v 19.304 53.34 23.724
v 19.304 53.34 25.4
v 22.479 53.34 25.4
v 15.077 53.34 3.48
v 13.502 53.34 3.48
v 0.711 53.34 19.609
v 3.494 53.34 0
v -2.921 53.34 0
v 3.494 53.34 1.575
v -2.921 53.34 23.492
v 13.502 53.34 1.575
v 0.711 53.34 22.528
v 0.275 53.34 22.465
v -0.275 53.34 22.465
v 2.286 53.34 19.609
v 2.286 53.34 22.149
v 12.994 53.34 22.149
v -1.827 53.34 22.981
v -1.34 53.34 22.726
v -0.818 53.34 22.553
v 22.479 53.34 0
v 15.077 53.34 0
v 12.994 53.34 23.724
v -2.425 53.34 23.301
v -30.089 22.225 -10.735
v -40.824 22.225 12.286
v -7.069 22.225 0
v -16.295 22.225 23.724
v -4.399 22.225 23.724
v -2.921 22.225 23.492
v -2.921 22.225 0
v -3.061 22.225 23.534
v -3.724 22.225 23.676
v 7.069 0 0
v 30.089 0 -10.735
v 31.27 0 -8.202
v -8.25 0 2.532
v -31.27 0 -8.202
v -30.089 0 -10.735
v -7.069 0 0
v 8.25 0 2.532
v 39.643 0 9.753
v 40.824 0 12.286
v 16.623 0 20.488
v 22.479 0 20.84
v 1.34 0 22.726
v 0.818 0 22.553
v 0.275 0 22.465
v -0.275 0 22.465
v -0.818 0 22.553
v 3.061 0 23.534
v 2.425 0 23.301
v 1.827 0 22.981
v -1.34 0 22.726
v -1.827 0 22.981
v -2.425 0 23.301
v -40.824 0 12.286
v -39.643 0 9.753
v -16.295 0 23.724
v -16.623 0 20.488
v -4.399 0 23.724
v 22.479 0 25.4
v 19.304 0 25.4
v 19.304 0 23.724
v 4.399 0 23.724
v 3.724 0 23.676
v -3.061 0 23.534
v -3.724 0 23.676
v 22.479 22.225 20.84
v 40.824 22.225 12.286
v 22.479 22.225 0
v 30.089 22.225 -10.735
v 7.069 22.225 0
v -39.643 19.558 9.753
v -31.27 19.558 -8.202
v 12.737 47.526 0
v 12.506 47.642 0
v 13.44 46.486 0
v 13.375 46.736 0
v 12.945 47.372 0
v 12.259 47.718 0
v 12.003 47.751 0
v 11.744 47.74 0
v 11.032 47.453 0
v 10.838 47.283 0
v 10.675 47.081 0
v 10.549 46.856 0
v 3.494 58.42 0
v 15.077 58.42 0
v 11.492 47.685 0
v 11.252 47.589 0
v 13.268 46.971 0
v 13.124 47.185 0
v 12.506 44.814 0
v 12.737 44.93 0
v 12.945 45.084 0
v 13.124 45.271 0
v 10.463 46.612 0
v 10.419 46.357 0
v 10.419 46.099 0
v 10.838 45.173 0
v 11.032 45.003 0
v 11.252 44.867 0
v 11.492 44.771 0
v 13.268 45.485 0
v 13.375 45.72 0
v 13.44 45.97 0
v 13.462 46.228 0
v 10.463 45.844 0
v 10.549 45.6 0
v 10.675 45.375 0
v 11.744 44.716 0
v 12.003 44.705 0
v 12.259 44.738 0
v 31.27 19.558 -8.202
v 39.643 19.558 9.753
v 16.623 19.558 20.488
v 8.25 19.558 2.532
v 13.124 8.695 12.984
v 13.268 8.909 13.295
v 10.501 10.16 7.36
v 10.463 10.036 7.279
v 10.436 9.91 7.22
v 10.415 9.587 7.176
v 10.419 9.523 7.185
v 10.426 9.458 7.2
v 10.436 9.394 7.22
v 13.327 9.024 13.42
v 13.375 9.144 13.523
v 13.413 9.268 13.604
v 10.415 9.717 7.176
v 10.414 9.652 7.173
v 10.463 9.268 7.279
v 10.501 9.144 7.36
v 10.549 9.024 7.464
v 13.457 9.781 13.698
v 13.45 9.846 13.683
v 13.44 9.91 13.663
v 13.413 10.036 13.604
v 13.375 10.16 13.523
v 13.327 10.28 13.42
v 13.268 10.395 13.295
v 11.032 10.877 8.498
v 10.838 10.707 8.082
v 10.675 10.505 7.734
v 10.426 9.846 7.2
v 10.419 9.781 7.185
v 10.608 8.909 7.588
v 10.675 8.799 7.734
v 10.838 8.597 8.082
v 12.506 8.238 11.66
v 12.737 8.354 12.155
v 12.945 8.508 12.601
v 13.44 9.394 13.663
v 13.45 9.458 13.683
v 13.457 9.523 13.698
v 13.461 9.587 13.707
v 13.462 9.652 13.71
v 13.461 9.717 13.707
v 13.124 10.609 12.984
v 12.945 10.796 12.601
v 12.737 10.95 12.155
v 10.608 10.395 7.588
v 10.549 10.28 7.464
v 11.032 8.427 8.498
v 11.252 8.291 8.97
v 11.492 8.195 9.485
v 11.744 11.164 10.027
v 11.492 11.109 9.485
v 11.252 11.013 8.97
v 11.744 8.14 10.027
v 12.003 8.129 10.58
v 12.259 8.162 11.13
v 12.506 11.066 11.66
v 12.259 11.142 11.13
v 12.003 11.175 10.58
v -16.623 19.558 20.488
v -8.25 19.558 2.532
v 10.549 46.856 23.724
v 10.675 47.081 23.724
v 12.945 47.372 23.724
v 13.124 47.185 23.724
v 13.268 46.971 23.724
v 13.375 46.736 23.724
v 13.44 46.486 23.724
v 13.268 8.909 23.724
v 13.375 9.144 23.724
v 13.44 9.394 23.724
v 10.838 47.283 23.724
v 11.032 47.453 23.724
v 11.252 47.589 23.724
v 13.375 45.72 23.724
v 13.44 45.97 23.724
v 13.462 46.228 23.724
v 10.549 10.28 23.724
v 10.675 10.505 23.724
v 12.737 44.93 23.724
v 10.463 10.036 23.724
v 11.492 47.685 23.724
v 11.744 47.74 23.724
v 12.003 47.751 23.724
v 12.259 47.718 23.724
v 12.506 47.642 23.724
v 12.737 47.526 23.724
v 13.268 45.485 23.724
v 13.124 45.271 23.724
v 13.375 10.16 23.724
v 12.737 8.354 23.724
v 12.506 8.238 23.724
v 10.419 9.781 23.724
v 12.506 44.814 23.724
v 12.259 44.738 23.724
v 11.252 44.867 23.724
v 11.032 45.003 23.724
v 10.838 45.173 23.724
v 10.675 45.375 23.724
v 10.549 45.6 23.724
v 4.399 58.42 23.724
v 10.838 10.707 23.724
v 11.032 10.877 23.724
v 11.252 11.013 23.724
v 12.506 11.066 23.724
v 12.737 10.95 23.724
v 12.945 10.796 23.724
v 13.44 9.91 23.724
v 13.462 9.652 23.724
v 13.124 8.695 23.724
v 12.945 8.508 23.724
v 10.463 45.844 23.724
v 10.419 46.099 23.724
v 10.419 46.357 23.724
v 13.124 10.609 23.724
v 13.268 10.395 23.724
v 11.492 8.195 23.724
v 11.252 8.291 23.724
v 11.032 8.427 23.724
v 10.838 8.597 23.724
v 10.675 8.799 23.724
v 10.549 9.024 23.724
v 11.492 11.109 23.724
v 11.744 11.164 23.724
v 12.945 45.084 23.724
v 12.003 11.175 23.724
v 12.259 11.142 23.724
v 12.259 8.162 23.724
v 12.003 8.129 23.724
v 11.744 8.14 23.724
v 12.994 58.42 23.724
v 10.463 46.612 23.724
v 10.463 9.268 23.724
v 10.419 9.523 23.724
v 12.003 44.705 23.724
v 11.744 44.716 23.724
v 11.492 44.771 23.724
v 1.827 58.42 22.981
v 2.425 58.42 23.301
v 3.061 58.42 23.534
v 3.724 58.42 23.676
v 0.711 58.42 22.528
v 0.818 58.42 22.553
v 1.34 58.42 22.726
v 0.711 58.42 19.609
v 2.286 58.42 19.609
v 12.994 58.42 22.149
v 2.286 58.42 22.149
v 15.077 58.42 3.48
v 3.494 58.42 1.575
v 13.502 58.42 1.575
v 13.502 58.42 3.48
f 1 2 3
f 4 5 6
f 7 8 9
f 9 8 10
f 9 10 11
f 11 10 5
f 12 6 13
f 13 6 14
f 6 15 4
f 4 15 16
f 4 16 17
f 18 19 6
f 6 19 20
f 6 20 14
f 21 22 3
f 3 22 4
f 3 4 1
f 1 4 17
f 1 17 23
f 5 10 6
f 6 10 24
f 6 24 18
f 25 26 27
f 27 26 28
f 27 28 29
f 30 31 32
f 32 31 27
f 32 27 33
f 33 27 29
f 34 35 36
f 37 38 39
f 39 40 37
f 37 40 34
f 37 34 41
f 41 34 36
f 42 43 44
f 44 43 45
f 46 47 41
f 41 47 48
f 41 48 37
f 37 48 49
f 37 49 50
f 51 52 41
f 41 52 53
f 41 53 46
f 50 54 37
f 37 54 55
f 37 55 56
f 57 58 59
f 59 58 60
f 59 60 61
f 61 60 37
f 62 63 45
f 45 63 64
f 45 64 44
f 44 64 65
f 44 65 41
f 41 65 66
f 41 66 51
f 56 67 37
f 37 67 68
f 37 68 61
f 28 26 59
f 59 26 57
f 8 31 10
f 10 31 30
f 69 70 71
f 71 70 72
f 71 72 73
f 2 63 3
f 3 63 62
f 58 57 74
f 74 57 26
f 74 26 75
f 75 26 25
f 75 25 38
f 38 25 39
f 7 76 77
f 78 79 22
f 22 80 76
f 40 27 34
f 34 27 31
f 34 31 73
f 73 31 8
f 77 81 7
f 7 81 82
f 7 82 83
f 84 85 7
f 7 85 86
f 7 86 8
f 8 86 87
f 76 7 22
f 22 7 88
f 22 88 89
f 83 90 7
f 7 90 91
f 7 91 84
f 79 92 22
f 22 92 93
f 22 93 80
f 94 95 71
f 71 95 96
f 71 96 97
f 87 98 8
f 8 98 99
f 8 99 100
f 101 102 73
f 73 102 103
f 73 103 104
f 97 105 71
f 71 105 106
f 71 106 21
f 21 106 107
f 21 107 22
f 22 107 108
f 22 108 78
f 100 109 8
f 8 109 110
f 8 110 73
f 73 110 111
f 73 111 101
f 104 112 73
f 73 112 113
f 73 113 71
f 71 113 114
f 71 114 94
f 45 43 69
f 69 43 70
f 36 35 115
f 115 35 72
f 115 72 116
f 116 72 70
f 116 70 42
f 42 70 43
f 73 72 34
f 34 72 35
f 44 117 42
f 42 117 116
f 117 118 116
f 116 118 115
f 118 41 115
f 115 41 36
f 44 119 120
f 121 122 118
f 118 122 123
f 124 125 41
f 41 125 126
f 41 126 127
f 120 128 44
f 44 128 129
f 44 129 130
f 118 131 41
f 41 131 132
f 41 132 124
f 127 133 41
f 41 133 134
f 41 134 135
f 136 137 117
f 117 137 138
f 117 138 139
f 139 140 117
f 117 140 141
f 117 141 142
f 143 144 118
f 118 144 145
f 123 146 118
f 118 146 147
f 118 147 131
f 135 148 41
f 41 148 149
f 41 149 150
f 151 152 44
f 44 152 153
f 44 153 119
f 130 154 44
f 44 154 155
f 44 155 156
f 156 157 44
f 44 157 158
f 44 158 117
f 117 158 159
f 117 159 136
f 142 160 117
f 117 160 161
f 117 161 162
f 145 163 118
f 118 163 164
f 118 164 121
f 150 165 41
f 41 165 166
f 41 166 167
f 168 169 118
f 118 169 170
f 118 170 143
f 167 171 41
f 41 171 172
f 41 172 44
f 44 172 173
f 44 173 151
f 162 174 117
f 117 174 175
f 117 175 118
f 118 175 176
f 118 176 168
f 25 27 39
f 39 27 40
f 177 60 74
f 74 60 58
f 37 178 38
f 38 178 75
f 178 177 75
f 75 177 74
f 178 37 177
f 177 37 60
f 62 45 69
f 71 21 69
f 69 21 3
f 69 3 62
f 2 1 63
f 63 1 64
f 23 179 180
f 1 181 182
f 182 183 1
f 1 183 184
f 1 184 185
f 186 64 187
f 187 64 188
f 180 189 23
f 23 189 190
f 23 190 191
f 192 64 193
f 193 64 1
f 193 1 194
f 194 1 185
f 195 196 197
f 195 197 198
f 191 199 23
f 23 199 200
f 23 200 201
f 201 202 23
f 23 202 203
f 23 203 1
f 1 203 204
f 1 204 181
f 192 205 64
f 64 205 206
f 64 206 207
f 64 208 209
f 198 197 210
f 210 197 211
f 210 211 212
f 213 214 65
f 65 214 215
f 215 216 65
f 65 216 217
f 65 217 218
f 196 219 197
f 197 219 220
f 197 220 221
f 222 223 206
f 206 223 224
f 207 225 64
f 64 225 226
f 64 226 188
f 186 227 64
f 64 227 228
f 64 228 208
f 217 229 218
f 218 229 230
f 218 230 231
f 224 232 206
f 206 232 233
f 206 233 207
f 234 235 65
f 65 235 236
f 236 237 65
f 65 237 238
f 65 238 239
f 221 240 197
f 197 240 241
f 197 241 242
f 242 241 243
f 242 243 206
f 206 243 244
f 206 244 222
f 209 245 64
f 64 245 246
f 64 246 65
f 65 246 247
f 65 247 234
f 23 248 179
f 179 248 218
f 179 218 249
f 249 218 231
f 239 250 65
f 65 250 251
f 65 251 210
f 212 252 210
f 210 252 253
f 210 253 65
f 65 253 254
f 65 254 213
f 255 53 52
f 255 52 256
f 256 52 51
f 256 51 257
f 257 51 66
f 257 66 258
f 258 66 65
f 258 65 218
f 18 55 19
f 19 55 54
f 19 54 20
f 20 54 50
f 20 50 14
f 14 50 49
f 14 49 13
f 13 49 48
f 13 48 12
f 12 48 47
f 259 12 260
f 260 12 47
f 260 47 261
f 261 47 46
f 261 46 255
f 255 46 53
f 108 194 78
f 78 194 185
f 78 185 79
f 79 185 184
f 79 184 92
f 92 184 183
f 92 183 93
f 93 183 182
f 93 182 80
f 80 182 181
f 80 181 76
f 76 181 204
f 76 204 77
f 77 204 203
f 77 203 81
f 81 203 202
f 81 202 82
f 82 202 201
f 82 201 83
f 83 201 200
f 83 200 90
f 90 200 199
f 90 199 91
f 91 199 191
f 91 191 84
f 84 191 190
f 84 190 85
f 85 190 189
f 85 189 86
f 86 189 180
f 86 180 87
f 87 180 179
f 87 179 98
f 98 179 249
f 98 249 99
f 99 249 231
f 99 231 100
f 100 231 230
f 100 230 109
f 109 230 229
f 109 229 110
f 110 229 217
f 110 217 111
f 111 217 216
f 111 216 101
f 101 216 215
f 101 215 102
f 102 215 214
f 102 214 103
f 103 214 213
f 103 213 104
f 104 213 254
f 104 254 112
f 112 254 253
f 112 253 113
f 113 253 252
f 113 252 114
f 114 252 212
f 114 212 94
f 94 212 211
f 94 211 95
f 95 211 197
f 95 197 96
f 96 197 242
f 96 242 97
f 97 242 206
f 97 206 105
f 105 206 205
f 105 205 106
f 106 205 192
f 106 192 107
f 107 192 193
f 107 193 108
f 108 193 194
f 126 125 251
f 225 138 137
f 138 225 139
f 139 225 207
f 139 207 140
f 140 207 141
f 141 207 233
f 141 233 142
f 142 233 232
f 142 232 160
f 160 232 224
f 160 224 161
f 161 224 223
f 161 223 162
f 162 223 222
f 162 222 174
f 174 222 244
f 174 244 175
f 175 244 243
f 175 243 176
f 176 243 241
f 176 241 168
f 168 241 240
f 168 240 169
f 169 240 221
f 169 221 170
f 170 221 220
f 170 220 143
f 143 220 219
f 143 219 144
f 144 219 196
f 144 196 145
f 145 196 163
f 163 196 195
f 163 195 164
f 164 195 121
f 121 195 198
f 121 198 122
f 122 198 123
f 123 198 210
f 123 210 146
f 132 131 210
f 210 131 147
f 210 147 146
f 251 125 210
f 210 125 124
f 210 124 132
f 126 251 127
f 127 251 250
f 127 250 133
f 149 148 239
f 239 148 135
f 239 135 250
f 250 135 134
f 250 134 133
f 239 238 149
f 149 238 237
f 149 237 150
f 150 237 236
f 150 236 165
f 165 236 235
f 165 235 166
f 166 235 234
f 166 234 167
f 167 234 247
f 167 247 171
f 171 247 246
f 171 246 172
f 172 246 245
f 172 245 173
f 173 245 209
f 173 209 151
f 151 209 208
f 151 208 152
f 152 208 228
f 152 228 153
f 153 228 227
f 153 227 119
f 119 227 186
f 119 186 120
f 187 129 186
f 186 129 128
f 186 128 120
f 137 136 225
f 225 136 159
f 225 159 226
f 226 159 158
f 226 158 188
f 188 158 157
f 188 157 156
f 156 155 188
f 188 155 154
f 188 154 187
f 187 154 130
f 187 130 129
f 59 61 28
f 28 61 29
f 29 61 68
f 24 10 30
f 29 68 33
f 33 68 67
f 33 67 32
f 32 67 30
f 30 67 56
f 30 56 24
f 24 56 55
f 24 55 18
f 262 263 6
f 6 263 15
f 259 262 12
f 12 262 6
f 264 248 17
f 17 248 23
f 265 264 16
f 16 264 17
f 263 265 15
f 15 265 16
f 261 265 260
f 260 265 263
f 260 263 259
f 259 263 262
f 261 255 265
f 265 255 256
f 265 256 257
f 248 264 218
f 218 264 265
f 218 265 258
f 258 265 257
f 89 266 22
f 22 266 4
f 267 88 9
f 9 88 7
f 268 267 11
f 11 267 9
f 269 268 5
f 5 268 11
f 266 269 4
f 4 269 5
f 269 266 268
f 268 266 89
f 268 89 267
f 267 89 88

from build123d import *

# Parameters (mm, degrees)
BOSS_EXTRUDE1_DEPTH        = 22.225
SKETCH2_W                  = 19.812
SKETCH2_H                  = 19.558
CUT_EXTRUDE1_DEPTH         = 25.4
BOSS_EXTRUDE3_DEPTH        = 22.225
CUT_EXTRUDE2_DEPTH         = 53.968700624
BOSS_EXTRUDE4_DEPTH        = 31.115
F_6_CLEARANCE_HOLE1_REACH  = 77.492
F_6_CLEARANCE_HOLE1_BORE_R = 1.524
SKETCH13_W                 = 1.5748
SKETCH13_H                 = 1.905
BOSS_EXTRUDE5_DEPTH        = 5.08


with BuildPart() as part:
    # Sketch1 → Boss-Extrude1 (new body)
    with BuildSketch(Plane(origin=(0, 0, 0), x_dir=(1, 0, 0), z_dir=(0, 1, 0))):
        Polygon((30.08917336, 10.734503848), (40.823677208, -12.285713943), (12.7, -25.4), (0, -25.4), (0, 0), (7.068955569, 0), align=None)
    boss_extrude1 = extrude(amount=BOSS_EXTRUDE1_DEPTH)

    # Sketch2 → Cut-Extrude1 (cut)
    with BuildSketch(Plane(origin=(28.826614102, 0, -13.442070914), x_dir=(-0.4226182617407009, 0, -0.9063077870366494), z_dir=(0.9063077870366494, 0, -0.4226182617407009))):
        with Locations((-15.687469715, 9.779)):
            Rectangle(SKETCH2_W, SKETCH2_H)
    cut_extrude1 = extrude(amount=-CUT_EXTRUDE1_DEPTH, mode=Mode.SUBTRACT)

    # Mirror1: Boss-Extrude1, Cut-Extrude1 across plane
    add(boss_extrude1.mirror(Plane(origin=(0, 22.225, 0), x_dir=(0, 0, 1), z_dir=(1, 0, 0))))
    add(cut_extrude1.mirror(Plane(origin=(0, 22.225, 0), x_dir=(0, 0, 1), z_dir=(1, 0, 0))), mode=Mode.SUBTRACT)

    # Sketch4 → Boss-Extrude3 (add)
    with BuildSketch(Plane(origin=(0, 22.225, 0), x_dir=(1, 0, 0), z_dir=(0, 1, 0))):
        Polygon((22.479000043, -20.839977391), (12.7, -25.4), (22.479000043, -25.4), align=None)
    extrude(amount=-BOSS_EXTRUDE3_DEPTH)

    # Sketch6 → Cut-Extrude2 (cut, through all)
    with BuildSketch(Plane.XZ):
        with BuildLine():
            Line((19.304000043, 23.7236), (4.399409051, 23.7236))
            ThreePointArc((4.399409051, 23.7236), (3.060917478, 23.534270822), (1.827446837, 22.981138462))
            ThreePointArc((1.827446837, 22.981138462), (-1.441154453, 22.771151006), (-3.3948694, 25.4))
            Line((-3.3948694, 25.4), (19.304000043, 25.4))
            Line((19.304000043, 25.4), (19.304000043, 23.7236))
        make_face()
    cut_extrude2 = extrude(amount=-CUT_EXTRUDE2_DEPTH, mode=Mode.SUBTRACT)

    # Sketch11 → Boss-Extrude4 (add)
    with BuildSketch(Plane(origin=(0, 22.225, 0), x_dir=(1, 0, 0), z_dir=(0, 1, 0))):
        with BuildLine():
            Line((22.479000043, -25.4), (22.479000043, -20.839977391))
            Line((22.479000043, -20.839977391), (22.479000043, 0))
            Line((22.479000043, 0), (7.068955569, 0))
            Line((7.068955569, 0), (-2.920999957, 0))
            Line((-2.920999957, 0), (-2.920999957, -24.086548706))
            ThreePointArc((-2.920999957, -24.086548706), (-0.777462256, -22.542900397), (1.827446837, -22.981138462))
            ThreePointArc((1.827446837, -22.981138462), (3.060917478, -23.534270822), (4.399409051, -23.7236))
            Line((4.399409051, -23.7236), (19.304000043, -23.7236))
            Line((19.304000043, -23.7236), (19.304000043, -25.4))
            Line((19.304000043, -25.4), (22.479000043, -25.4))
        make_face()
    extrude(amount=BOSS_EXTRUDE4_DEPTH)

    # #6 Clearance Hole1 bore → #6 Clearance Hole1 (cut, up to next)
    with BuildSketch(Plane.XY.offset(23.7236), mode=Mode.PRIVATE) as f_6_clearance_hole1_sk1:
        with Locations((11.938000043, 9.652)):
            Circle(F_6_CLEARANCE_HOLE1_BORE_R)
    f_6_clearance_hole1_tool1 = extrude(f_6_clearance_hole1_sk1.sketch, amount=-F_6_CLEARANCE_HOLE1_REACH, mode=Mode.PRIVATE) & part.part
    # #6 Clearance Hole1 bore → #6 Clearance Hole1 (cut, up to next)
    with BuildSketch(Plane.XY.offset(23.7236), mode=Mode.PRIVATE) as f_6_clearance_hole1_sk2:
        with Locations((11.938000043, 46.228)):
            Circle(F_6_CLEARANCE_HOLE1_BORE_R)
    f_6_clearance_hole1_tool2 = extrude(f_6_clearance_hole1_sk2.sketch, amount=-F_6_CLEARANCE_HOLE1_REACH, mode=Mode.PRIVATE) & part.part
    add(f_6_clearance_hole1_tool1.solids().sort_by_distance((11.938, 9.652, 23.7236))[0], mode=Mode.SUBTRACT)
    add(f_6_clearance_hole1_tool2.solids().sort_by_distance((11.938, 46.228, 23.7236))[0], mode=Mode.SUBTRACT)

    # Mirror2: Cut-Extrude2 across plane
    add(cut_extrude2.mirror(Plane(origin=(0, 0, 0), x_dir=(0, 0, 1), z_dir=(1, 0, 0))), mode=Mode.SUBTRACT)

    # Sketch13 → Boss-Extrude5 (add)
    with BuildSketch(Plane(origin=(0, 53.34, 0), x_dir=(1, 0, 0), z_dir=(0, 1, 0))):
        with BuildLine():
            Line((4.399409051, -23.7236), (12.994000043, -23.7236))
            Line((12.994000043, -23.7236), (12.994000043, -22.1488))
            Line((12.994000043, -22.1488), (2.286000043, -22.1488))
            Line((2.286000043, -22.1488), (2.286000043, -19.6088))
            Line((2.286000043, -19.6088), (0.711200043, -19.6088))
            Line((0.711200043, -19.6088), (0.711200043, -22.528164802))
            ThreePointArc((0.711200043, -22.528164802), (1.289371273, -22.705248474), (1.827446837, -22.981138462))
            ThreePointArc((1.827446837, -22.981138462), (3.060917478, -23.534270822), (4.399409051, -23.7236))
        make_face()
        Polygon((15.076800043, 0), (3.494000043, 0), (3.494000043, -1.5748), (13.502000043, -1.5748), (15.076800043, -1.5748), align=None)
        with Locations((14.289400043, -2.5273)):
            Rectangle(SKETCH13_W, SKETCH13_H)
    extrude(amount=BOSS_EXTRUDE5_DEPTH)


solid = part.part
